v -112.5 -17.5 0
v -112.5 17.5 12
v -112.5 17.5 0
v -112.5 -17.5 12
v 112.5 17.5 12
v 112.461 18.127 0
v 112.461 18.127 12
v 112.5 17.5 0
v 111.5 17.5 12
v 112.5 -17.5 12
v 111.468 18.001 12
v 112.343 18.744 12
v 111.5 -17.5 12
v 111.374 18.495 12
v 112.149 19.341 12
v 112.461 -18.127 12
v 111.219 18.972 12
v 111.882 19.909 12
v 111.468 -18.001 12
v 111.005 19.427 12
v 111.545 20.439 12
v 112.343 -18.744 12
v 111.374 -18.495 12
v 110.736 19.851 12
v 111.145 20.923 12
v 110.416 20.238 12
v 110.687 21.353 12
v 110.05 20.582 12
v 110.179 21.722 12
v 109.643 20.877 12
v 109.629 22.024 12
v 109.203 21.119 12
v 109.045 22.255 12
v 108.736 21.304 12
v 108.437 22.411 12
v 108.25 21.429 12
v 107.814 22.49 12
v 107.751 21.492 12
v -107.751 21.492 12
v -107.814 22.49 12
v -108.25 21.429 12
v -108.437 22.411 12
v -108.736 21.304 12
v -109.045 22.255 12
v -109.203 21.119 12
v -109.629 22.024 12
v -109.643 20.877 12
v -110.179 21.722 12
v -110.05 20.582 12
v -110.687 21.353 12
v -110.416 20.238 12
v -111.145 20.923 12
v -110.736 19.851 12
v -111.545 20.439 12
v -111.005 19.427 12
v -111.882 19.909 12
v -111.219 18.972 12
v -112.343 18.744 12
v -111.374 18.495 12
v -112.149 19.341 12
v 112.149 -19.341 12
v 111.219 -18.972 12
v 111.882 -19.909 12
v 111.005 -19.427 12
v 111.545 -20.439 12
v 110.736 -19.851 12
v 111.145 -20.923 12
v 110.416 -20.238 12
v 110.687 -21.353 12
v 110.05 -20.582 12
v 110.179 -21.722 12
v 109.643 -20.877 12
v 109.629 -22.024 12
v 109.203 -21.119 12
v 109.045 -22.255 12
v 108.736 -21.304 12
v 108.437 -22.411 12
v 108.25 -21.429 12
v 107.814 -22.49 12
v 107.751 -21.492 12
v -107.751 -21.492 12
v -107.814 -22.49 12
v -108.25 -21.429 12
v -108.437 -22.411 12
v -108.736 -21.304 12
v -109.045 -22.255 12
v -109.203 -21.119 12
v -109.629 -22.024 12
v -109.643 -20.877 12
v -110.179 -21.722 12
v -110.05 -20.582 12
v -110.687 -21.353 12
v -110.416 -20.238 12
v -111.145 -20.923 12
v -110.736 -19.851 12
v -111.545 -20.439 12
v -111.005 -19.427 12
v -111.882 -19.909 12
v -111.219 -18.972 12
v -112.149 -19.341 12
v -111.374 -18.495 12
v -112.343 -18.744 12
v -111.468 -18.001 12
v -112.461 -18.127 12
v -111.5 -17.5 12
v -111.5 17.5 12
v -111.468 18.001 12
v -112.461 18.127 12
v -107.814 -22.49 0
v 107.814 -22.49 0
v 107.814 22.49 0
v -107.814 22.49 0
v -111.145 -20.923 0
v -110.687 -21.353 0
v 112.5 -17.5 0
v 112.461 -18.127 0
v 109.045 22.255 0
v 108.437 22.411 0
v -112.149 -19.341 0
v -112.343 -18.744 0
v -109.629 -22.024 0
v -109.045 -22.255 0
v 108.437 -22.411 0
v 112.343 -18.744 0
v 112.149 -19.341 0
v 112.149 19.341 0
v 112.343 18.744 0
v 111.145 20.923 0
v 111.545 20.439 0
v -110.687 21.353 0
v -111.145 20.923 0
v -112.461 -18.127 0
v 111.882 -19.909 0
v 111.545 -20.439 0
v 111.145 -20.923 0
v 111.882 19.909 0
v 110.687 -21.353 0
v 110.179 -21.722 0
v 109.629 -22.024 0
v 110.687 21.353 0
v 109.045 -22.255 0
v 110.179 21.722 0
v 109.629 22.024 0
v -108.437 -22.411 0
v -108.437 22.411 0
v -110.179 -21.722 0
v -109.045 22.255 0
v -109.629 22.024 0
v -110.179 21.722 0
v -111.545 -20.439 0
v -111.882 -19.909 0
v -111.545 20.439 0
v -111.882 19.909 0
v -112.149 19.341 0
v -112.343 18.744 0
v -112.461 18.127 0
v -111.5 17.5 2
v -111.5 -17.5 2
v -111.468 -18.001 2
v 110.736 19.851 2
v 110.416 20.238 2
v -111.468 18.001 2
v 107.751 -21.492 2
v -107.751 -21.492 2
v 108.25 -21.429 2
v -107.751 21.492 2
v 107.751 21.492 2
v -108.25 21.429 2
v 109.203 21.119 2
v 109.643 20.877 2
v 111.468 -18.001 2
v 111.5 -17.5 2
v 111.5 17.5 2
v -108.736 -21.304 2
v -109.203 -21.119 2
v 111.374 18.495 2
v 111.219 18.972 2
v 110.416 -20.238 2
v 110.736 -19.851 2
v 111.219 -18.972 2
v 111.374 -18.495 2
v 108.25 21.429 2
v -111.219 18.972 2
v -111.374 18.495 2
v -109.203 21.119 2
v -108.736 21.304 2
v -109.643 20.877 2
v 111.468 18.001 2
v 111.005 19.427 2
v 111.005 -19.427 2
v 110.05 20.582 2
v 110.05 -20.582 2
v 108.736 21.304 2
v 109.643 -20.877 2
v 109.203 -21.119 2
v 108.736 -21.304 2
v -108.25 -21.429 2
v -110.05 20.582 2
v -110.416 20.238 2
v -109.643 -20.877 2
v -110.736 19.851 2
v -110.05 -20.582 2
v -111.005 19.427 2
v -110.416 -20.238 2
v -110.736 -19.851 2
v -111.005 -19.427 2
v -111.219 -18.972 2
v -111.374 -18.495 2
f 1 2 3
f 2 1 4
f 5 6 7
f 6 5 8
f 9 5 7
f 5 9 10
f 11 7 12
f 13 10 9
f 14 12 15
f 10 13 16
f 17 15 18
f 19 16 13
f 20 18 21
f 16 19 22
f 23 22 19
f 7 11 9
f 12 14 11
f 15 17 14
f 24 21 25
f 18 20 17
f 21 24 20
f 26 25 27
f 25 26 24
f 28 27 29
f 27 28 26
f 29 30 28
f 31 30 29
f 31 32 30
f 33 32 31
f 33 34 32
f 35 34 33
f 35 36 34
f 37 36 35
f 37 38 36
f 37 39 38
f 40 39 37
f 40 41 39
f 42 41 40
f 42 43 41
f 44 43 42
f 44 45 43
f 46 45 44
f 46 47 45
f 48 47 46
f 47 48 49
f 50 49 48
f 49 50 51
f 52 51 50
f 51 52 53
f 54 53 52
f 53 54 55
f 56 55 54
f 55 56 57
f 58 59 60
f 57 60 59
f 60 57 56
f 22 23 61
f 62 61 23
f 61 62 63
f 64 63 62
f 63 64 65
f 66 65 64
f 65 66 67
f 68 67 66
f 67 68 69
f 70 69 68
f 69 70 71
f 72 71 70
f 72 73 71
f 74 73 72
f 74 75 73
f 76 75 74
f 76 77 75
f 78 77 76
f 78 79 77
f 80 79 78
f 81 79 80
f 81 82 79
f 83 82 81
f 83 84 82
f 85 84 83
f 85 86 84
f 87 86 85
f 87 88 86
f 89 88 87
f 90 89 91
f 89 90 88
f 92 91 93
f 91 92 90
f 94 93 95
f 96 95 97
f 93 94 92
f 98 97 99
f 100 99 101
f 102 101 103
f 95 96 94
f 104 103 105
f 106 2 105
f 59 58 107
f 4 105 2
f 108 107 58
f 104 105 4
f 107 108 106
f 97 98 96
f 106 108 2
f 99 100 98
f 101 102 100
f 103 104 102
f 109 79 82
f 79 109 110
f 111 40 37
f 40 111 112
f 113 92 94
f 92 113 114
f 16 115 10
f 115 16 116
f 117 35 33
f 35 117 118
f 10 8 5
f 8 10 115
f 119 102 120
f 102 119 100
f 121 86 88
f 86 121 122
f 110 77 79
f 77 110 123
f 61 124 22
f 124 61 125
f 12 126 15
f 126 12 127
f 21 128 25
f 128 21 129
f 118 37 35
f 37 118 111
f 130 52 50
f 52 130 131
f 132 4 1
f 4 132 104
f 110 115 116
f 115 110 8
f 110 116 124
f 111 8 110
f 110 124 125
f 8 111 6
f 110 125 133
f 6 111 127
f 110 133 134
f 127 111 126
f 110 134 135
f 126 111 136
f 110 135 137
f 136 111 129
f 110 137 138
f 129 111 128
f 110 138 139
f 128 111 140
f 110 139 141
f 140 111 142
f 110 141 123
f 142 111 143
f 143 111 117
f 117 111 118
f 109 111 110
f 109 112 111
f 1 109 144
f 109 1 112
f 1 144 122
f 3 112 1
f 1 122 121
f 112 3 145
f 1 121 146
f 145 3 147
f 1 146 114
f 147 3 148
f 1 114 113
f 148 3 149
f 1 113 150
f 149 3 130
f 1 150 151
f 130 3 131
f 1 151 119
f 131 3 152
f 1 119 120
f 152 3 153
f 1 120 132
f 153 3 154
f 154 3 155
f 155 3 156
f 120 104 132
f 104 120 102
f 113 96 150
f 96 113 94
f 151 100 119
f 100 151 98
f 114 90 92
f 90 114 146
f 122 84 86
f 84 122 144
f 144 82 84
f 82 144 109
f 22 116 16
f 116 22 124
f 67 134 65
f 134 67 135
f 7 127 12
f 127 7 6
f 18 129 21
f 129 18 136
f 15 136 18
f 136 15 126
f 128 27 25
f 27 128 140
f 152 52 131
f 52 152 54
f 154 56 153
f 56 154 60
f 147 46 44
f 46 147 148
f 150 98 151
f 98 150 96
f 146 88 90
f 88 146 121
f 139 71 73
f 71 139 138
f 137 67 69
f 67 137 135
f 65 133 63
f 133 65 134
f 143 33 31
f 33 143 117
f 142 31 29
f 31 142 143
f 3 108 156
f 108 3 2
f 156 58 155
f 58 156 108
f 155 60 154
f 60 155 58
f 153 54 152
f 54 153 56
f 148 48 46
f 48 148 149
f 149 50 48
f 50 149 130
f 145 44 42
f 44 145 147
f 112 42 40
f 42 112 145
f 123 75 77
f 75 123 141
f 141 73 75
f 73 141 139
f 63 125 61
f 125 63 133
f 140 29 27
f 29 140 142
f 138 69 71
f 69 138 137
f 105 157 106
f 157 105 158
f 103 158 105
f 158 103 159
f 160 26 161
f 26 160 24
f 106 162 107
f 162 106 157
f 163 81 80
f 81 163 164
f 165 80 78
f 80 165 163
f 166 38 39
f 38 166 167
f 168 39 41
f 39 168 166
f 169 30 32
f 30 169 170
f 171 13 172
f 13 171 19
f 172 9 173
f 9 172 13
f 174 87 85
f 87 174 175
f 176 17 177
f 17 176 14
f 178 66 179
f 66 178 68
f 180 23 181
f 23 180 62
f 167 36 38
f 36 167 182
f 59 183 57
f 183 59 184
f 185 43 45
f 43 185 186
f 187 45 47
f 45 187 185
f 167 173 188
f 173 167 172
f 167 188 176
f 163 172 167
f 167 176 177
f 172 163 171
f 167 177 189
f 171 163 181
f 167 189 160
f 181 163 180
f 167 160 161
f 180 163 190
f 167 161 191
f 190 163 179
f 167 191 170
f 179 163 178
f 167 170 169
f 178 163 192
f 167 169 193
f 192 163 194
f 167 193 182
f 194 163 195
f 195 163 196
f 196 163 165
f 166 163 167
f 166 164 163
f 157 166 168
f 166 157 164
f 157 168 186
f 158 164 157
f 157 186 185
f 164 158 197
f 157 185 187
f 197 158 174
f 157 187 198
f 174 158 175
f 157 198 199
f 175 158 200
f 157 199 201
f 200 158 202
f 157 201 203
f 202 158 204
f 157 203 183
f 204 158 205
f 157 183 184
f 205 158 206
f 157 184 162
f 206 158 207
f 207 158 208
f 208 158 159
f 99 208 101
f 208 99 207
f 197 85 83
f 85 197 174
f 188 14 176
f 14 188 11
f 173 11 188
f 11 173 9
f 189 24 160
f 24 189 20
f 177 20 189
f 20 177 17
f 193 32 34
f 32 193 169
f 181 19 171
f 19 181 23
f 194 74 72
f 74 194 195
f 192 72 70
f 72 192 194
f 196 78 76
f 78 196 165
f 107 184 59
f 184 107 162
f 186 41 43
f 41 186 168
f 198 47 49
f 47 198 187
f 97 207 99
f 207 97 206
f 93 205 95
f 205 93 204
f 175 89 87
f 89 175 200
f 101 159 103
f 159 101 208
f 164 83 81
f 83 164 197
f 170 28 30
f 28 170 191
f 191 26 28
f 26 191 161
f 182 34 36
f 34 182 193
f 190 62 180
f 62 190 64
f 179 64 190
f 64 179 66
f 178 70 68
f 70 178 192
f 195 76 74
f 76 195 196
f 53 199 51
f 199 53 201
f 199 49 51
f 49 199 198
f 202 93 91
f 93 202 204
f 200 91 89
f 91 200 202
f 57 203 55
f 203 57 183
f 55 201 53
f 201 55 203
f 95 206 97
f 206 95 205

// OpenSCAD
$fn = 50;


difference() {
	union() {
		hull() {
			translate(v = [-107.5000000000, 17.5000000000, 0]) {
				cylinder(h = 12, r = 5);
			}
			translate(v = [107.5000000000, 17.5000000000, 0]) {
				cylinder(h = 12, r = 5);
			}
			translate(v = [-107.5000000000, -17.5000000000, 0]) {
				cylinder(h = 12, r = 5);
			}
			translate(v = [107.5000000000, -17.5000000000, 0]) {
				cylinder(h = 12, r = 5);
			}
		}
	}
	union() {
		translate(v = [0, 0, 2]) {
			hull() {
				translate(v = [-107.5000000000, 17.5000000000, 0]) {
					cylinder(h = 10, r = 4);
				}
				translate(v = [107.5000000000, 17.5000000000, 0]) {
					cylinder(h = 10, r = 4);
				}
				translate(v = [-107.5000000000, -17.5000000000, 0]) {
					cylinder(h = 10, r = 4);
				}
				translate(v = [107.5000000000, -17.5000000000, 0]) {
					cylinder(h = 10, r = 4);
				}
			}
		}
	}
}
